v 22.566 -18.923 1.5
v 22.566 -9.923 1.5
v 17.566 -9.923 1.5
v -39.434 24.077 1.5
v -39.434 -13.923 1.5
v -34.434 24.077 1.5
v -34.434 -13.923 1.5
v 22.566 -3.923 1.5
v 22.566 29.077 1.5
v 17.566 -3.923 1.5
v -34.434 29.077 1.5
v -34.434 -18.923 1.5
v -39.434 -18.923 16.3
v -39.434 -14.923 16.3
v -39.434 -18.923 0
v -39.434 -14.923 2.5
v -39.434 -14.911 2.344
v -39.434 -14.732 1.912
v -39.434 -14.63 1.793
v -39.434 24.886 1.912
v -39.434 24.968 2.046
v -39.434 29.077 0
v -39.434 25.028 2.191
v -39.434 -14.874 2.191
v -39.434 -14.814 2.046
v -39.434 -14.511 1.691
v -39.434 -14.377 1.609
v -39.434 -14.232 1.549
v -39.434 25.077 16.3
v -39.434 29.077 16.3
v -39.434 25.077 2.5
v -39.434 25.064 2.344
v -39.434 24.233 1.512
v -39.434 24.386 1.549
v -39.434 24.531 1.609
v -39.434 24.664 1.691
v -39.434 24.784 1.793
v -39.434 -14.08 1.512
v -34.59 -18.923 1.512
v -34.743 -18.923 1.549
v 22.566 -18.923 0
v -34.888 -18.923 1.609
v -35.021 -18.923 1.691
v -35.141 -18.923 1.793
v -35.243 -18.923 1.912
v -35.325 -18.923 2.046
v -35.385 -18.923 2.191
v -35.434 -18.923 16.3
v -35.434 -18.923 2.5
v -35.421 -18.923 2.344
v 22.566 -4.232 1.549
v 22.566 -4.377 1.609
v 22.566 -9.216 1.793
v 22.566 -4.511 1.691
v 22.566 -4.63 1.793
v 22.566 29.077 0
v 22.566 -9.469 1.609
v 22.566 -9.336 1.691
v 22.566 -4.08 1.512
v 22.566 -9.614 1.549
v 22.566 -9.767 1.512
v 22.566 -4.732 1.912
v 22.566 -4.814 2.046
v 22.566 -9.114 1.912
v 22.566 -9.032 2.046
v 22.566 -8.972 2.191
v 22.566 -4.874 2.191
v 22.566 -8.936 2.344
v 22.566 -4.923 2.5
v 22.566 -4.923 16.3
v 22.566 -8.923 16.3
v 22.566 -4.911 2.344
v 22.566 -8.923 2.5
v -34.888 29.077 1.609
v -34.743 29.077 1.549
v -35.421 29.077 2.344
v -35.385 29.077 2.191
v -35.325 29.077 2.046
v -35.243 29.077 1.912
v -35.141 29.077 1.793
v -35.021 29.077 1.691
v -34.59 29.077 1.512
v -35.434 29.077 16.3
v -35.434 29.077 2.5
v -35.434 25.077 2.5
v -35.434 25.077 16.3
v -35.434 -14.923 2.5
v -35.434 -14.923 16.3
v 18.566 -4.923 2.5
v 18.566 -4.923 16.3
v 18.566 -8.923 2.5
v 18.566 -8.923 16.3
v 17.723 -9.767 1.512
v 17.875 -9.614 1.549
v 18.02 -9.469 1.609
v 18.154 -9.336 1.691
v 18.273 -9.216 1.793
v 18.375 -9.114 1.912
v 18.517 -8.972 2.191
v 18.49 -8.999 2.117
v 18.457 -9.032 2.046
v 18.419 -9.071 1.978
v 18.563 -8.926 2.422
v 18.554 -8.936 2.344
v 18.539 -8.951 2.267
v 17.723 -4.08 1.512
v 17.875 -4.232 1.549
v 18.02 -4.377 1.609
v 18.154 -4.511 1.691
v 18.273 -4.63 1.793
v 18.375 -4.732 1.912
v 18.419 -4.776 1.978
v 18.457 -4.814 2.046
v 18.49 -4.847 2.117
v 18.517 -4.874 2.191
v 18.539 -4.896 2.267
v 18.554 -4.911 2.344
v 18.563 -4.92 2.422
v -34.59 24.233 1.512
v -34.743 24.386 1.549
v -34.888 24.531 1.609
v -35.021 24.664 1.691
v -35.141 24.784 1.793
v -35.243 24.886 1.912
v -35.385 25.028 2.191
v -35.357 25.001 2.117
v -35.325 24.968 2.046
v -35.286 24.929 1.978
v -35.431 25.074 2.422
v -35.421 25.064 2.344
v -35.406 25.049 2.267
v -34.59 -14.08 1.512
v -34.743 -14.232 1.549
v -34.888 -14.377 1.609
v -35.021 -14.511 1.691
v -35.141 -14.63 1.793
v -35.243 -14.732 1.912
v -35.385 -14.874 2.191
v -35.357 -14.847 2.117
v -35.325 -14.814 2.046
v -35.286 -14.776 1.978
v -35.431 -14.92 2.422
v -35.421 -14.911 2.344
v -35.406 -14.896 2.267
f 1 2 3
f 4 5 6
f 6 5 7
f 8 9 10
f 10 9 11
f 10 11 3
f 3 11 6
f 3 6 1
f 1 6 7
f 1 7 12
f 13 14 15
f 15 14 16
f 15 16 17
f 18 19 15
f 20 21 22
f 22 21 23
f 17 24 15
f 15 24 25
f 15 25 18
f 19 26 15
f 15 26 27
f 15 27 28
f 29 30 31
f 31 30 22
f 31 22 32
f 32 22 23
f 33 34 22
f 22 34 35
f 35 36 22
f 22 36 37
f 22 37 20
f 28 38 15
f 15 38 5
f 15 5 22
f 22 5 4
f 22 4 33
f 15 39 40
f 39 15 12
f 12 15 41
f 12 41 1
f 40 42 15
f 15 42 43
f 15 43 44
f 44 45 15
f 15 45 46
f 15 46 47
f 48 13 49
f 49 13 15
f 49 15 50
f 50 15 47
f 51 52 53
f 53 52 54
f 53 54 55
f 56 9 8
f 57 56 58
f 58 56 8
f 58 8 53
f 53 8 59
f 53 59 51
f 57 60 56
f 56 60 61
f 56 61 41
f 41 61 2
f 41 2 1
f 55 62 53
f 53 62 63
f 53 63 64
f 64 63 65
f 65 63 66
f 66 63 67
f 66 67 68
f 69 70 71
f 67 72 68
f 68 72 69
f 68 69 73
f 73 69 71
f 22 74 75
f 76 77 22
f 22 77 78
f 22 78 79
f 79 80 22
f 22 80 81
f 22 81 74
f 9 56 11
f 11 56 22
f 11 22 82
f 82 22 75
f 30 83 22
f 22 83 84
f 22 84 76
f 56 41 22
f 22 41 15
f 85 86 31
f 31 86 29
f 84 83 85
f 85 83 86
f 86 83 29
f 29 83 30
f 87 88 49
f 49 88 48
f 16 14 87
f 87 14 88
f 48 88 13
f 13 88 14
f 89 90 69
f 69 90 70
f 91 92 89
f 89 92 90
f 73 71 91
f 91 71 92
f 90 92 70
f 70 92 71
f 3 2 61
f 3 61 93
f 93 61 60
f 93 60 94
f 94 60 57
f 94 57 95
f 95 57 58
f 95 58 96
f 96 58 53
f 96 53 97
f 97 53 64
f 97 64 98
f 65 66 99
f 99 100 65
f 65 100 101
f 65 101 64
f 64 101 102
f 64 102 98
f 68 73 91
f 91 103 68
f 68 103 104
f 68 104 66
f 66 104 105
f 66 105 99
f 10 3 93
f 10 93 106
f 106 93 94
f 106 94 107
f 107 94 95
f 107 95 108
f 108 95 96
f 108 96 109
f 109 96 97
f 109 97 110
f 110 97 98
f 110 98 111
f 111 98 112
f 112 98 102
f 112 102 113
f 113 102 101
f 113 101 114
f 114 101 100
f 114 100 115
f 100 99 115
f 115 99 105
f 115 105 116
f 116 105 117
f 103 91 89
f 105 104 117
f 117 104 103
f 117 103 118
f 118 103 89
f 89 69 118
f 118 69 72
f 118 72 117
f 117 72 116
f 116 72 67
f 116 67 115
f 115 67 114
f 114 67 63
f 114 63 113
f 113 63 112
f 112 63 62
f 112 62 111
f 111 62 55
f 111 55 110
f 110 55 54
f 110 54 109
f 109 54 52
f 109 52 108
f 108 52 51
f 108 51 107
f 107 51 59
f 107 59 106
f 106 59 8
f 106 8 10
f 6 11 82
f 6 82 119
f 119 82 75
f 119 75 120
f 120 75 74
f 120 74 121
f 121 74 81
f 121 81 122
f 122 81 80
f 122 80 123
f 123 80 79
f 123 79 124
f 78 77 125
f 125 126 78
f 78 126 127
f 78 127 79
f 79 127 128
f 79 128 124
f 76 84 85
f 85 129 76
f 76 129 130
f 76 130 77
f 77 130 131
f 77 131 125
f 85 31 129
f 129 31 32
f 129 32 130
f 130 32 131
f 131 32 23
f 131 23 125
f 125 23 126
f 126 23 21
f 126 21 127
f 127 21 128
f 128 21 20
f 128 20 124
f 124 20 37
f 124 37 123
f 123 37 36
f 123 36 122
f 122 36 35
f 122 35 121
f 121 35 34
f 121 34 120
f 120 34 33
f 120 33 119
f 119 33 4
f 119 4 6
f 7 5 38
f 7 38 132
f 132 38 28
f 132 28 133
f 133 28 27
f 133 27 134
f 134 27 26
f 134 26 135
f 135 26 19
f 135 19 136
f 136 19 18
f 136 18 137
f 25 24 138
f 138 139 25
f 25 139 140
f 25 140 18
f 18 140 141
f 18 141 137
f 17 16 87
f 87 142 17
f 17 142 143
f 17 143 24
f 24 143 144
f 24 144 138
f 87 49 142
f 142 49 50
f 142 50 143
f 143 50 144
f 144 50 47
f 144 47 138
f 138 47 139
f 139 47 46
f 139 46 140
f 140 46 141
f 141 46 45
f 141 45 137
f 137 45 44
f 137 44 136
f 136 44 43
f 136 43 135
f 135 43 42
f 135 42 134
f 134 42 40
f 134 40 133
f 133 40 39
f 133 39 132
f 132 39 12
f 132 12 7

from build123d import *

# Parameters (mm, degrees)
SKIZZE1_W                       = 62
SKIZZE1_H                       = 48
AUFSATZ_LINEAR_AUSTRAGEN1_DEPTH = 1.5
SKIZZE3_W                       = 4
SKIZZE3_H                       = 4
AUFSATZ_LINEAR_AUSTRAGEN2_DEPTH = 14.8
VERRUNDUNG1_R                   = 1


with BuildPart() as part:
    # Skizze1 → Aufsatz-Linear austragen1 (new body)
    with BuildSketch(Plane.XY):
        with Locations((-8.433613499, 5.076642336)):
            Rectangle(SKIZZE1_W, SKIZZE1_H)
    extrude(amount=AUFSATZ_LINEAR_AUSTRAGEN1_DEPTH)

    # Skizze3 → Aufsatz-Linear austragen2 (add)
    with BuildSketch(Plane.XY.offset(1.5)):
        with Locations((-37.433613499, 27.076642336)):
            Rectangle(SKIZZE3_W, SKIZZE3_H)
        with Locations((-37.433613499, -16.923357664)):
            Rectangle(SKIZZE3_W, SKIZZE3_H)
        with Locations((20.566386501, -6.923357664)):
            Rectangle(SKIZZE3_W, SKIZZE3_H)
    extrude(amount=AUFSATZ_LINEAR_AUSTRAGEN2_DEPTH)

    # Verrundung1
    verrundung1_edges = [part.edges().sort_by_distance(p)[0] for p in [
        (-37.433613499, 25.076642336, 1.5),
        (-35.433613499, 27.076642336, 1.5),
        (-35.433613499, -16.923357664, 1.5),
        (-37.433613499, -14.923357664, 1.5),
        (20.566386501, -4.923357664, 1.5),
        (18.566386501, -6.923357664, 1.5),
        (20.566386501, -8.923357664, 1.5),
    ]]
    fillet(verrundung1_edges, radius=VERRUNDUNG1_R)


solid = part.part
